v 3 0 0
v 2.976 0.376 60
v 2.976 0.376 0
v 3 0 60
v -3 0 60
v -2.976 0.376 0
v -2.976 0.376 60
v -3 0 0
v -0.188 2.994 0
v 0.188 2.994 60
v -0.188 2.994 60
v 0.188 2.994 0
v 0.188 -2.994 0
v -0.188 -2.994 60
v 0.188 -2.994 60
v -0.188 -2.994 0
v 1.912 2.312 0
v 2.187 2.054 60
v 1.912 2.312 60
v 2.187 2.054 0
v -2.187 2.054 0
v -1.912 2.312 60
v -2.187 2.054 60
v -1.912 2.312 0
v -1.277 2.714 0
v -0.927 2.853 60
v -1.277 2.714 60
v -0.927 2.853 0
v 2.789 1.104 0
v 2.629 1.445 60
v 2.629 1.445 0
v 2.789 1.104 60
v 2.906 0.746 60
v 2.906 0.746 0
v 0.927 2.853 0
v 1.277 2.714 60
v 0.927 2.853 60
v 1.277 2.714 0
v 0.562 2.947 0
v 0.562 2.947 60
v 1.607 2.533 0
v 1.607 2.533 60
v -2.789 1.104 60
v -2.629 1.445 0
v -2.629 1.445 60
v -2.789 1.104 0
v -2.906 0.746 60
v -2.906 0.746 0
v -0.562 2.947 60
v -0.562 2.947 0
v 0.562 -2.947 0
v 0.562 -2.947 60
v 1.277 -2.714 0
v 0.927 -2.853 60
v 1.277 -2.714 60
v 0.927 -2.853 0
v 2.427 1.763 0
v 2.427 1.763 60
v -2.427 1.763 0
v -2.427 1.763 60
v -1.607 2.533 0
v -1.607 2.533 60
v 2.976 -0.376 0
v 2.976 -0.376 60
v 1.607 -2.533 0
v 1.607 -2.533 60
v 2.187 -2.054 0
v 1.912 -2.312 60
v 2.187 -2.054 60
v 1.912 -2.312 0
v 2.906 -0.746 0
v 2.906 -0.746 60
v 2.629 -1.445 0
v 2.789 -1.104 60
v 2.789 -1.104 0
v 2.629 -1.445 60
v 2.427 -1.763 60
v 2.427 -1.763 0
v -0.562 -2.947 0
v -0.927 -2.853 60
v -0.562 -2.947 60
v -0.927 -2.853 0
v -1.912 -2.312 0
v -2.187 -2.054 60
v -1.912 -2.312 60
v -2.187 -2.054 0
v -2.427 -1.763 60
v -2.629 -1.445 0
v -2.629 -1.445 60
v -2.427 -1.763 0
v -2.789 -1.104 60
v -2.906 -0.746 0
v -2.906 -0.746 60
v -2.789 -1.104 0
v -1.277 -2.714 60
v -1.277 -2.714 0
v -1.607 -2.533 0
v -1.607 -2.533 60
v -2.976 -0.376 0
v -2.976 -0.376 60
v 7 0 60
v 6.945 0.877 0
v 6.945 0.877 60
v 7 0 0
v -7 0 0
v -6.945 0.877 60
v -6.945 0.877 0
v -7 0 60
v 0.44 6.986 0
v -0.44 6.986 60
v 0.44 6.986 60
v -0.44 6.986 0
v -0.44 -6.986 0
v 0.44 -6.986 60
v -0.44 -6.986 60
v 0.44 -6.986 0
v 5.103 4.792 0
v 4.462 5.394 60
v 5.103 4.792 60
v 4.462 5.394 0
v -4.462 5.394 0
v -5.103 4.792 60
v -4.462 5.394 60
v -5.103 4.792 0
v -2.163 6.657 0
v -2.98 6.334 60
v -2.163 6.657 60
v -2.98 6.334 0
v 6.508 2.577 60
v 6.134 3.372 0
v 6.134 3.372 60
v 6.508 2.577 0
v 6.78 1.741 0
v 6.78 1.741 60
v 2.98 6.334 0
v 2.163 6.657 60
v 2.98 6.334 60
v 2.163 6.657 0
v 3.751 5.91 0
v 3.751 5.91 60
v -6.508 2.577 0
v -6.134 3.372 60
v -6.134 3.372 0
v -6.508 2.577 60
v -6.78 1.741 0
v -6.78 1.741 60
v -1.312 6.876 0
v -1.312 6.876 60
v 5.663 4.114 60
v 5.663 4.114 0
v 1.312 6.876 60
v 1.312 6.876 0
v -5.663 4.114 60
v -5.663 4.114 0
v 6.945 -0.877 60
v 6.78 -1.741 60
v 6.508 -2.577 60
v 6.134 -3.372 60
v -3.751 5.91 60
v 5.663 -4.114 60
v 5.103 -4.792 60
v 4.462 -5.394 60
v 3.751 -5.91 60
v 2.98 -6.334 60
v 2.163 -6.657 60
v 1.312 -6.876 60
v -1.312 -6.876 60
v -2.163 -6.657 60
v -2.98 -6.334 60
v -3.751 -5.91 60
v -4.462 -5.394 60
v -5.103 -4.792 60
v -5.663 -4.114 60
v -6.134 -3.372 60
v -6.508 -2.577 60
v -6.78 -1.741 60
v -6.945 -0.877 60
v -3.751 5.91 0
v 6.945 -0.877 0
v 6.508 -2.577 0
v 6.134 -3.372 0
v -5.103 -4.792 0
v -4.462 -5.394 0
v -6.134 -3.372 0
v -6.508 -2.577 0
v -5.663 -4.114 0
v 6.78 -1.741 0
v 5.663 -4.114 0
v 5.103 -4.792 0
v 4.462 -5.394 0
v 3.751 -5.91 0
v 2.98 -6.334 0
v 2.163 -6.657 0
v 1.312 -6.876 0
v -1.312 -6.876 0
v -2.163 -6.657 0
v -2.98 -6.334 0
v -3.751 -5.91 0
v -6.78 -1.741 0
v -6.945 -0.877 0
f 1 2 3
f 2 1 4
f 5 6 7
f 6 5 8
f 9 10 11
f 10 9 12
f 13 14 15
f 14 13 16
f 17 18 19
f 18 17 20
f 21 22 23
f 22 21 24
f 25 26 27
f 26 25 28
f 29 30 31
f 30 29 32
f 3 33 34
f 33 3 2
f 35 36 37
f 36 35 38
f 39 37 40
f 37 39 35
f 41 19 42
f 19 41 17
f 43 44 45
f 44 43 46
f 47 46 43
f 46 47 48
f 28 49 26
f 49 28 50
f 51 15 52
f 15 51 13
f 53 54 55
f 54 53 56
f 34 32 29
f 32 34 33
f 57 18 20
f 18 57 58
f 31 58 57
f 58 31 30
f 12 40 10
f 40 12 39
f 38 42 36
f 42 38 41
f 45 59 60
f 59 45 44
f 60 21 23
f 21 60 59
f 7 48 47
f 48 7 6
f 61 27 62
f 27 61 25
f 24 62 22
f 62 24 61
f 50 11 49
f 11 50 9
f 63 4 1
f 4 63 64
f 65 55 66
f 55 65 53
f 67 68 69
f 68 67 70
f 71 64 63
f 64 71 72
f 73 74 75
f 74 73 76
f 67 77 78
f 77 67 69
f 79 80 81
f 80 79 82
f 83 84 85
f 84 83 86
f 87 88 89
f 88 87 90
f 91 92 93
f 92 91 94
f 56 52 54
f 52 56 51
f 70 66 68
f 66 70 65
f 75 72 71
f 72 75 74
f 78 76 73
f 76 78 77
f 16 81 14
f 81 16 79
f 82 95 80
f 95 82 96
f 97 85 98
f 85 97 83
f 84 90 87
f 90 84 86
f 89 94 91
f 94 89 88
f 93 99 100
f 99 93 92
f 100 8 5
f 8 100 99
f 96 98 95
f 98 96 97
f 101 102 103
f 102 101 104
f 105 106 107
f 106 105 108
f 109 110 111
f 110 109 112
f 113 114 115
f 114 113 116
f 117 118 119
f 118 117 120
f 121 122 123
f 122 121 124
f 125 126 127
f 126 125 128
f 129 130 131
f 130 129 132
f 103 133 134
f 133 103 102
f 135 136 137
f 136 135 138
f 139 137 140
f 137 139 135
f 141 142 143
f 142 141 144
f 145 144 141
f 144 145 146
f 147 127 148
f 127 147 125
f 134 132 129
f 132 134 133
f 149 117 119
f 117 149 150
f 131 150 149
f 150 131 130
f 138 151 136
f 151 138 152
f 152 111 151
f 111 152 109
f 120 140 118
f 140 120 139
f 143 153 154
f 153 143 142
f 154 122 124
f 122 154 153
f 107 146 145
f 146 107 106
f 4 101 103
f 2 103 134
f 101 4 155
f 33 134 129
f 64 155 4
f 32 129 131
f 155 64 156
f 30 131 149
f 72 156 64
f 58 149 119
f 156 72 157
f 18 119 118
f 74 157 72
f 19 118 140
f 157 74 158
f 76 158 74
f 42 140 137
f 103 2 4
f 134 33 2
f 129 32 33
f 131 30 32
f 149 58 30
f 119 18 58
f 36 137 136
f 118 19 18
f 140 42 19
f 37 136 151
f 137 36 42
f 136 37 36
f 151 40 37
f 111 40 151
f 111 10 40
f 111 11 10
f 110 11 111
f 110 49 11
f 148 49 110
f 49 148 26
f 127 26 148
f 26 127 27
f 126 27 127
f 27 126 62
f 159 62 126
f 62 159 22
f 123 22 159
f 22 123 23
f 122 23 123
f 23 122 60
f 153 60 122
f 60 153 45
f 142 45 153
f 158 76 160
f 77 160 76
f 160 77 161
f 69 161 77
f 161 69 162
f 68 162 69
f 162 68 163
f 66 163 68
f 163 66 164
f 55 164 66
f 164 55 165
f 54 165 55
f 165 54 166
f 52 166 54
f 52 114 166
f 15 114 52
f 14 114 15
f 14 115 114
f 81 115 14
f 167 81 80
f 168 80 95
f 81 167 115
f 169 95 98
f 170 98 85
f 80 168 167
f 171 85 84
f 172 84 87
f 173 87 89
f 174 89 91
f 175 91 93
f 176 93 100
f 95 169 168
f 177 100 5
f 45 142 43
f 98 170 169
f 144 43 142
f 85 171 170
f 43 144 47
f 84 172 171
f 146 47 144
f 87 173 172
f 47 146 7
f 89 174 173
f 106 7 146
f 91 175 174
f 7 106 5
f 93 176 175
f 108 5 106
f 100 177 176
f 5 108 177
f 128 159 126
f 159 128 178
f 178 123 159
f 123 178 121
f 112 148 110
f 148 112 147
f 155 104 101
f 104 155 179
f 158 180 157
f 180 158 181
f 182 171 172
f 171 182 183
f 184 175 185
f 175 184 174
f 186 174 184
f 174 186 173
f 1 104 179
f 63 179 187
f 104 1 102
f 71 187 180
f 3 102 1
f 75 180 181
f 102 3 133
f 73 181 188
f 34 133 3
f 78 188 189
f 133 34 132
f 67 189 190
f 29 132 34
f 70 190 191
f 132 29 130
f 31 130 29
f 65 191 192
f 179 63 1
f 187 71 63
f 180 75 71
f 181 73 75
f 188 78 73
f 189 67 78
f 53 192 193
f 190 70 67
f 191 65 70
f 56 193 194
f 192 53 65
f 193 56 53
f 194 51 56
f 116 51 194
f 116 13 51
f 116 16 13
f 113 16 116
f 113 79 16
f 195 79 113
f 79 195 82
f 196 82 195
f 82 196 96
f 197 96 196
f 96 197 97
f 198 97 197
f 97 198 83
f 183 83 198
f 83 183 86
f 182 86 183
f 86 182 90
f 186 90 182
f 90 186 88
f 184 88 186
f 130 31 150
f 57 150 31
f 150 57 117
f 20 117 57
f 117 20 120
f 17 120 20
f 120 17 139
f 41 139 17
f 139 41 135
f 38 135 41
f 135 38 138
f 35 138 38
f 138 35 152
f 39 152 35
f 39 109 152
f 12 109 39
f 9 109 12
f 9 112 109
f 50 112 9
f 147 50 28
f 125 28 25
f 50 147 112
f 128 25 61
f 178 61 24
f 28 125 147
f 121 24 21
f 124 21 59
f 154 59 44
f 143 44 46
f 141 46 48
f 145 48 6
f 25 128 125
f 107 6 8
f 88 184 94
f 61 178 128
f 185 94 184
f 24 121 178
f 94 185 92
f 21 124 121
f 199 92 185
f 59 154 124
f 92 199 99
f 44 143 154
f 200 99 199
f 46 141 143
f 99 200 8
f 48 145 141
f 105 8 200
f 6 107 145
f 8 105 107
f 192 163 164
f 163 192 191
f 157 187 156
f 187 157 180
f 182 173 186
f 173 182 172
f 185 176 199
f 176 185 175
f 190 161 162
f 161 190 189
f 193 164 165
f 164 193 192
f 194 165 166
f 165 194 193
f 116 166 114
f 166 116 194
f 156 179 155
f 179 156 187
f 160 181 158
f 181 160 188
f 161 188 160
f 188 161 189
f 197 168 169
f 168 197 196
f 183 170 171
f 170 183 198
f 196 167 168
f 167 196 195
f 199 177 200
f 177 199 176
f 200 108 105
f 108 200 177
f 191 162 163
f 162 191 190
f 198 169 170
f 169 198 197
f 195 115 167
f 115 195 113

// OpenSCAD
$fn = 50;


difference() {
	union() {
		cylinder(h = 60, r = 7.0000000000);
	}
	union() {
		translate(v = [0.0000000000, 0.0000000000, -100.0000000000]) {
			cylinder(h = 200, r = 3.0000000000);
		}
		cylinder(h = 60, r = 1.5000000000);
		cylinder(h = 60, r = 1.5000000000);
		cylinder(h = 60, r = 1.5000000000);
	}
}
